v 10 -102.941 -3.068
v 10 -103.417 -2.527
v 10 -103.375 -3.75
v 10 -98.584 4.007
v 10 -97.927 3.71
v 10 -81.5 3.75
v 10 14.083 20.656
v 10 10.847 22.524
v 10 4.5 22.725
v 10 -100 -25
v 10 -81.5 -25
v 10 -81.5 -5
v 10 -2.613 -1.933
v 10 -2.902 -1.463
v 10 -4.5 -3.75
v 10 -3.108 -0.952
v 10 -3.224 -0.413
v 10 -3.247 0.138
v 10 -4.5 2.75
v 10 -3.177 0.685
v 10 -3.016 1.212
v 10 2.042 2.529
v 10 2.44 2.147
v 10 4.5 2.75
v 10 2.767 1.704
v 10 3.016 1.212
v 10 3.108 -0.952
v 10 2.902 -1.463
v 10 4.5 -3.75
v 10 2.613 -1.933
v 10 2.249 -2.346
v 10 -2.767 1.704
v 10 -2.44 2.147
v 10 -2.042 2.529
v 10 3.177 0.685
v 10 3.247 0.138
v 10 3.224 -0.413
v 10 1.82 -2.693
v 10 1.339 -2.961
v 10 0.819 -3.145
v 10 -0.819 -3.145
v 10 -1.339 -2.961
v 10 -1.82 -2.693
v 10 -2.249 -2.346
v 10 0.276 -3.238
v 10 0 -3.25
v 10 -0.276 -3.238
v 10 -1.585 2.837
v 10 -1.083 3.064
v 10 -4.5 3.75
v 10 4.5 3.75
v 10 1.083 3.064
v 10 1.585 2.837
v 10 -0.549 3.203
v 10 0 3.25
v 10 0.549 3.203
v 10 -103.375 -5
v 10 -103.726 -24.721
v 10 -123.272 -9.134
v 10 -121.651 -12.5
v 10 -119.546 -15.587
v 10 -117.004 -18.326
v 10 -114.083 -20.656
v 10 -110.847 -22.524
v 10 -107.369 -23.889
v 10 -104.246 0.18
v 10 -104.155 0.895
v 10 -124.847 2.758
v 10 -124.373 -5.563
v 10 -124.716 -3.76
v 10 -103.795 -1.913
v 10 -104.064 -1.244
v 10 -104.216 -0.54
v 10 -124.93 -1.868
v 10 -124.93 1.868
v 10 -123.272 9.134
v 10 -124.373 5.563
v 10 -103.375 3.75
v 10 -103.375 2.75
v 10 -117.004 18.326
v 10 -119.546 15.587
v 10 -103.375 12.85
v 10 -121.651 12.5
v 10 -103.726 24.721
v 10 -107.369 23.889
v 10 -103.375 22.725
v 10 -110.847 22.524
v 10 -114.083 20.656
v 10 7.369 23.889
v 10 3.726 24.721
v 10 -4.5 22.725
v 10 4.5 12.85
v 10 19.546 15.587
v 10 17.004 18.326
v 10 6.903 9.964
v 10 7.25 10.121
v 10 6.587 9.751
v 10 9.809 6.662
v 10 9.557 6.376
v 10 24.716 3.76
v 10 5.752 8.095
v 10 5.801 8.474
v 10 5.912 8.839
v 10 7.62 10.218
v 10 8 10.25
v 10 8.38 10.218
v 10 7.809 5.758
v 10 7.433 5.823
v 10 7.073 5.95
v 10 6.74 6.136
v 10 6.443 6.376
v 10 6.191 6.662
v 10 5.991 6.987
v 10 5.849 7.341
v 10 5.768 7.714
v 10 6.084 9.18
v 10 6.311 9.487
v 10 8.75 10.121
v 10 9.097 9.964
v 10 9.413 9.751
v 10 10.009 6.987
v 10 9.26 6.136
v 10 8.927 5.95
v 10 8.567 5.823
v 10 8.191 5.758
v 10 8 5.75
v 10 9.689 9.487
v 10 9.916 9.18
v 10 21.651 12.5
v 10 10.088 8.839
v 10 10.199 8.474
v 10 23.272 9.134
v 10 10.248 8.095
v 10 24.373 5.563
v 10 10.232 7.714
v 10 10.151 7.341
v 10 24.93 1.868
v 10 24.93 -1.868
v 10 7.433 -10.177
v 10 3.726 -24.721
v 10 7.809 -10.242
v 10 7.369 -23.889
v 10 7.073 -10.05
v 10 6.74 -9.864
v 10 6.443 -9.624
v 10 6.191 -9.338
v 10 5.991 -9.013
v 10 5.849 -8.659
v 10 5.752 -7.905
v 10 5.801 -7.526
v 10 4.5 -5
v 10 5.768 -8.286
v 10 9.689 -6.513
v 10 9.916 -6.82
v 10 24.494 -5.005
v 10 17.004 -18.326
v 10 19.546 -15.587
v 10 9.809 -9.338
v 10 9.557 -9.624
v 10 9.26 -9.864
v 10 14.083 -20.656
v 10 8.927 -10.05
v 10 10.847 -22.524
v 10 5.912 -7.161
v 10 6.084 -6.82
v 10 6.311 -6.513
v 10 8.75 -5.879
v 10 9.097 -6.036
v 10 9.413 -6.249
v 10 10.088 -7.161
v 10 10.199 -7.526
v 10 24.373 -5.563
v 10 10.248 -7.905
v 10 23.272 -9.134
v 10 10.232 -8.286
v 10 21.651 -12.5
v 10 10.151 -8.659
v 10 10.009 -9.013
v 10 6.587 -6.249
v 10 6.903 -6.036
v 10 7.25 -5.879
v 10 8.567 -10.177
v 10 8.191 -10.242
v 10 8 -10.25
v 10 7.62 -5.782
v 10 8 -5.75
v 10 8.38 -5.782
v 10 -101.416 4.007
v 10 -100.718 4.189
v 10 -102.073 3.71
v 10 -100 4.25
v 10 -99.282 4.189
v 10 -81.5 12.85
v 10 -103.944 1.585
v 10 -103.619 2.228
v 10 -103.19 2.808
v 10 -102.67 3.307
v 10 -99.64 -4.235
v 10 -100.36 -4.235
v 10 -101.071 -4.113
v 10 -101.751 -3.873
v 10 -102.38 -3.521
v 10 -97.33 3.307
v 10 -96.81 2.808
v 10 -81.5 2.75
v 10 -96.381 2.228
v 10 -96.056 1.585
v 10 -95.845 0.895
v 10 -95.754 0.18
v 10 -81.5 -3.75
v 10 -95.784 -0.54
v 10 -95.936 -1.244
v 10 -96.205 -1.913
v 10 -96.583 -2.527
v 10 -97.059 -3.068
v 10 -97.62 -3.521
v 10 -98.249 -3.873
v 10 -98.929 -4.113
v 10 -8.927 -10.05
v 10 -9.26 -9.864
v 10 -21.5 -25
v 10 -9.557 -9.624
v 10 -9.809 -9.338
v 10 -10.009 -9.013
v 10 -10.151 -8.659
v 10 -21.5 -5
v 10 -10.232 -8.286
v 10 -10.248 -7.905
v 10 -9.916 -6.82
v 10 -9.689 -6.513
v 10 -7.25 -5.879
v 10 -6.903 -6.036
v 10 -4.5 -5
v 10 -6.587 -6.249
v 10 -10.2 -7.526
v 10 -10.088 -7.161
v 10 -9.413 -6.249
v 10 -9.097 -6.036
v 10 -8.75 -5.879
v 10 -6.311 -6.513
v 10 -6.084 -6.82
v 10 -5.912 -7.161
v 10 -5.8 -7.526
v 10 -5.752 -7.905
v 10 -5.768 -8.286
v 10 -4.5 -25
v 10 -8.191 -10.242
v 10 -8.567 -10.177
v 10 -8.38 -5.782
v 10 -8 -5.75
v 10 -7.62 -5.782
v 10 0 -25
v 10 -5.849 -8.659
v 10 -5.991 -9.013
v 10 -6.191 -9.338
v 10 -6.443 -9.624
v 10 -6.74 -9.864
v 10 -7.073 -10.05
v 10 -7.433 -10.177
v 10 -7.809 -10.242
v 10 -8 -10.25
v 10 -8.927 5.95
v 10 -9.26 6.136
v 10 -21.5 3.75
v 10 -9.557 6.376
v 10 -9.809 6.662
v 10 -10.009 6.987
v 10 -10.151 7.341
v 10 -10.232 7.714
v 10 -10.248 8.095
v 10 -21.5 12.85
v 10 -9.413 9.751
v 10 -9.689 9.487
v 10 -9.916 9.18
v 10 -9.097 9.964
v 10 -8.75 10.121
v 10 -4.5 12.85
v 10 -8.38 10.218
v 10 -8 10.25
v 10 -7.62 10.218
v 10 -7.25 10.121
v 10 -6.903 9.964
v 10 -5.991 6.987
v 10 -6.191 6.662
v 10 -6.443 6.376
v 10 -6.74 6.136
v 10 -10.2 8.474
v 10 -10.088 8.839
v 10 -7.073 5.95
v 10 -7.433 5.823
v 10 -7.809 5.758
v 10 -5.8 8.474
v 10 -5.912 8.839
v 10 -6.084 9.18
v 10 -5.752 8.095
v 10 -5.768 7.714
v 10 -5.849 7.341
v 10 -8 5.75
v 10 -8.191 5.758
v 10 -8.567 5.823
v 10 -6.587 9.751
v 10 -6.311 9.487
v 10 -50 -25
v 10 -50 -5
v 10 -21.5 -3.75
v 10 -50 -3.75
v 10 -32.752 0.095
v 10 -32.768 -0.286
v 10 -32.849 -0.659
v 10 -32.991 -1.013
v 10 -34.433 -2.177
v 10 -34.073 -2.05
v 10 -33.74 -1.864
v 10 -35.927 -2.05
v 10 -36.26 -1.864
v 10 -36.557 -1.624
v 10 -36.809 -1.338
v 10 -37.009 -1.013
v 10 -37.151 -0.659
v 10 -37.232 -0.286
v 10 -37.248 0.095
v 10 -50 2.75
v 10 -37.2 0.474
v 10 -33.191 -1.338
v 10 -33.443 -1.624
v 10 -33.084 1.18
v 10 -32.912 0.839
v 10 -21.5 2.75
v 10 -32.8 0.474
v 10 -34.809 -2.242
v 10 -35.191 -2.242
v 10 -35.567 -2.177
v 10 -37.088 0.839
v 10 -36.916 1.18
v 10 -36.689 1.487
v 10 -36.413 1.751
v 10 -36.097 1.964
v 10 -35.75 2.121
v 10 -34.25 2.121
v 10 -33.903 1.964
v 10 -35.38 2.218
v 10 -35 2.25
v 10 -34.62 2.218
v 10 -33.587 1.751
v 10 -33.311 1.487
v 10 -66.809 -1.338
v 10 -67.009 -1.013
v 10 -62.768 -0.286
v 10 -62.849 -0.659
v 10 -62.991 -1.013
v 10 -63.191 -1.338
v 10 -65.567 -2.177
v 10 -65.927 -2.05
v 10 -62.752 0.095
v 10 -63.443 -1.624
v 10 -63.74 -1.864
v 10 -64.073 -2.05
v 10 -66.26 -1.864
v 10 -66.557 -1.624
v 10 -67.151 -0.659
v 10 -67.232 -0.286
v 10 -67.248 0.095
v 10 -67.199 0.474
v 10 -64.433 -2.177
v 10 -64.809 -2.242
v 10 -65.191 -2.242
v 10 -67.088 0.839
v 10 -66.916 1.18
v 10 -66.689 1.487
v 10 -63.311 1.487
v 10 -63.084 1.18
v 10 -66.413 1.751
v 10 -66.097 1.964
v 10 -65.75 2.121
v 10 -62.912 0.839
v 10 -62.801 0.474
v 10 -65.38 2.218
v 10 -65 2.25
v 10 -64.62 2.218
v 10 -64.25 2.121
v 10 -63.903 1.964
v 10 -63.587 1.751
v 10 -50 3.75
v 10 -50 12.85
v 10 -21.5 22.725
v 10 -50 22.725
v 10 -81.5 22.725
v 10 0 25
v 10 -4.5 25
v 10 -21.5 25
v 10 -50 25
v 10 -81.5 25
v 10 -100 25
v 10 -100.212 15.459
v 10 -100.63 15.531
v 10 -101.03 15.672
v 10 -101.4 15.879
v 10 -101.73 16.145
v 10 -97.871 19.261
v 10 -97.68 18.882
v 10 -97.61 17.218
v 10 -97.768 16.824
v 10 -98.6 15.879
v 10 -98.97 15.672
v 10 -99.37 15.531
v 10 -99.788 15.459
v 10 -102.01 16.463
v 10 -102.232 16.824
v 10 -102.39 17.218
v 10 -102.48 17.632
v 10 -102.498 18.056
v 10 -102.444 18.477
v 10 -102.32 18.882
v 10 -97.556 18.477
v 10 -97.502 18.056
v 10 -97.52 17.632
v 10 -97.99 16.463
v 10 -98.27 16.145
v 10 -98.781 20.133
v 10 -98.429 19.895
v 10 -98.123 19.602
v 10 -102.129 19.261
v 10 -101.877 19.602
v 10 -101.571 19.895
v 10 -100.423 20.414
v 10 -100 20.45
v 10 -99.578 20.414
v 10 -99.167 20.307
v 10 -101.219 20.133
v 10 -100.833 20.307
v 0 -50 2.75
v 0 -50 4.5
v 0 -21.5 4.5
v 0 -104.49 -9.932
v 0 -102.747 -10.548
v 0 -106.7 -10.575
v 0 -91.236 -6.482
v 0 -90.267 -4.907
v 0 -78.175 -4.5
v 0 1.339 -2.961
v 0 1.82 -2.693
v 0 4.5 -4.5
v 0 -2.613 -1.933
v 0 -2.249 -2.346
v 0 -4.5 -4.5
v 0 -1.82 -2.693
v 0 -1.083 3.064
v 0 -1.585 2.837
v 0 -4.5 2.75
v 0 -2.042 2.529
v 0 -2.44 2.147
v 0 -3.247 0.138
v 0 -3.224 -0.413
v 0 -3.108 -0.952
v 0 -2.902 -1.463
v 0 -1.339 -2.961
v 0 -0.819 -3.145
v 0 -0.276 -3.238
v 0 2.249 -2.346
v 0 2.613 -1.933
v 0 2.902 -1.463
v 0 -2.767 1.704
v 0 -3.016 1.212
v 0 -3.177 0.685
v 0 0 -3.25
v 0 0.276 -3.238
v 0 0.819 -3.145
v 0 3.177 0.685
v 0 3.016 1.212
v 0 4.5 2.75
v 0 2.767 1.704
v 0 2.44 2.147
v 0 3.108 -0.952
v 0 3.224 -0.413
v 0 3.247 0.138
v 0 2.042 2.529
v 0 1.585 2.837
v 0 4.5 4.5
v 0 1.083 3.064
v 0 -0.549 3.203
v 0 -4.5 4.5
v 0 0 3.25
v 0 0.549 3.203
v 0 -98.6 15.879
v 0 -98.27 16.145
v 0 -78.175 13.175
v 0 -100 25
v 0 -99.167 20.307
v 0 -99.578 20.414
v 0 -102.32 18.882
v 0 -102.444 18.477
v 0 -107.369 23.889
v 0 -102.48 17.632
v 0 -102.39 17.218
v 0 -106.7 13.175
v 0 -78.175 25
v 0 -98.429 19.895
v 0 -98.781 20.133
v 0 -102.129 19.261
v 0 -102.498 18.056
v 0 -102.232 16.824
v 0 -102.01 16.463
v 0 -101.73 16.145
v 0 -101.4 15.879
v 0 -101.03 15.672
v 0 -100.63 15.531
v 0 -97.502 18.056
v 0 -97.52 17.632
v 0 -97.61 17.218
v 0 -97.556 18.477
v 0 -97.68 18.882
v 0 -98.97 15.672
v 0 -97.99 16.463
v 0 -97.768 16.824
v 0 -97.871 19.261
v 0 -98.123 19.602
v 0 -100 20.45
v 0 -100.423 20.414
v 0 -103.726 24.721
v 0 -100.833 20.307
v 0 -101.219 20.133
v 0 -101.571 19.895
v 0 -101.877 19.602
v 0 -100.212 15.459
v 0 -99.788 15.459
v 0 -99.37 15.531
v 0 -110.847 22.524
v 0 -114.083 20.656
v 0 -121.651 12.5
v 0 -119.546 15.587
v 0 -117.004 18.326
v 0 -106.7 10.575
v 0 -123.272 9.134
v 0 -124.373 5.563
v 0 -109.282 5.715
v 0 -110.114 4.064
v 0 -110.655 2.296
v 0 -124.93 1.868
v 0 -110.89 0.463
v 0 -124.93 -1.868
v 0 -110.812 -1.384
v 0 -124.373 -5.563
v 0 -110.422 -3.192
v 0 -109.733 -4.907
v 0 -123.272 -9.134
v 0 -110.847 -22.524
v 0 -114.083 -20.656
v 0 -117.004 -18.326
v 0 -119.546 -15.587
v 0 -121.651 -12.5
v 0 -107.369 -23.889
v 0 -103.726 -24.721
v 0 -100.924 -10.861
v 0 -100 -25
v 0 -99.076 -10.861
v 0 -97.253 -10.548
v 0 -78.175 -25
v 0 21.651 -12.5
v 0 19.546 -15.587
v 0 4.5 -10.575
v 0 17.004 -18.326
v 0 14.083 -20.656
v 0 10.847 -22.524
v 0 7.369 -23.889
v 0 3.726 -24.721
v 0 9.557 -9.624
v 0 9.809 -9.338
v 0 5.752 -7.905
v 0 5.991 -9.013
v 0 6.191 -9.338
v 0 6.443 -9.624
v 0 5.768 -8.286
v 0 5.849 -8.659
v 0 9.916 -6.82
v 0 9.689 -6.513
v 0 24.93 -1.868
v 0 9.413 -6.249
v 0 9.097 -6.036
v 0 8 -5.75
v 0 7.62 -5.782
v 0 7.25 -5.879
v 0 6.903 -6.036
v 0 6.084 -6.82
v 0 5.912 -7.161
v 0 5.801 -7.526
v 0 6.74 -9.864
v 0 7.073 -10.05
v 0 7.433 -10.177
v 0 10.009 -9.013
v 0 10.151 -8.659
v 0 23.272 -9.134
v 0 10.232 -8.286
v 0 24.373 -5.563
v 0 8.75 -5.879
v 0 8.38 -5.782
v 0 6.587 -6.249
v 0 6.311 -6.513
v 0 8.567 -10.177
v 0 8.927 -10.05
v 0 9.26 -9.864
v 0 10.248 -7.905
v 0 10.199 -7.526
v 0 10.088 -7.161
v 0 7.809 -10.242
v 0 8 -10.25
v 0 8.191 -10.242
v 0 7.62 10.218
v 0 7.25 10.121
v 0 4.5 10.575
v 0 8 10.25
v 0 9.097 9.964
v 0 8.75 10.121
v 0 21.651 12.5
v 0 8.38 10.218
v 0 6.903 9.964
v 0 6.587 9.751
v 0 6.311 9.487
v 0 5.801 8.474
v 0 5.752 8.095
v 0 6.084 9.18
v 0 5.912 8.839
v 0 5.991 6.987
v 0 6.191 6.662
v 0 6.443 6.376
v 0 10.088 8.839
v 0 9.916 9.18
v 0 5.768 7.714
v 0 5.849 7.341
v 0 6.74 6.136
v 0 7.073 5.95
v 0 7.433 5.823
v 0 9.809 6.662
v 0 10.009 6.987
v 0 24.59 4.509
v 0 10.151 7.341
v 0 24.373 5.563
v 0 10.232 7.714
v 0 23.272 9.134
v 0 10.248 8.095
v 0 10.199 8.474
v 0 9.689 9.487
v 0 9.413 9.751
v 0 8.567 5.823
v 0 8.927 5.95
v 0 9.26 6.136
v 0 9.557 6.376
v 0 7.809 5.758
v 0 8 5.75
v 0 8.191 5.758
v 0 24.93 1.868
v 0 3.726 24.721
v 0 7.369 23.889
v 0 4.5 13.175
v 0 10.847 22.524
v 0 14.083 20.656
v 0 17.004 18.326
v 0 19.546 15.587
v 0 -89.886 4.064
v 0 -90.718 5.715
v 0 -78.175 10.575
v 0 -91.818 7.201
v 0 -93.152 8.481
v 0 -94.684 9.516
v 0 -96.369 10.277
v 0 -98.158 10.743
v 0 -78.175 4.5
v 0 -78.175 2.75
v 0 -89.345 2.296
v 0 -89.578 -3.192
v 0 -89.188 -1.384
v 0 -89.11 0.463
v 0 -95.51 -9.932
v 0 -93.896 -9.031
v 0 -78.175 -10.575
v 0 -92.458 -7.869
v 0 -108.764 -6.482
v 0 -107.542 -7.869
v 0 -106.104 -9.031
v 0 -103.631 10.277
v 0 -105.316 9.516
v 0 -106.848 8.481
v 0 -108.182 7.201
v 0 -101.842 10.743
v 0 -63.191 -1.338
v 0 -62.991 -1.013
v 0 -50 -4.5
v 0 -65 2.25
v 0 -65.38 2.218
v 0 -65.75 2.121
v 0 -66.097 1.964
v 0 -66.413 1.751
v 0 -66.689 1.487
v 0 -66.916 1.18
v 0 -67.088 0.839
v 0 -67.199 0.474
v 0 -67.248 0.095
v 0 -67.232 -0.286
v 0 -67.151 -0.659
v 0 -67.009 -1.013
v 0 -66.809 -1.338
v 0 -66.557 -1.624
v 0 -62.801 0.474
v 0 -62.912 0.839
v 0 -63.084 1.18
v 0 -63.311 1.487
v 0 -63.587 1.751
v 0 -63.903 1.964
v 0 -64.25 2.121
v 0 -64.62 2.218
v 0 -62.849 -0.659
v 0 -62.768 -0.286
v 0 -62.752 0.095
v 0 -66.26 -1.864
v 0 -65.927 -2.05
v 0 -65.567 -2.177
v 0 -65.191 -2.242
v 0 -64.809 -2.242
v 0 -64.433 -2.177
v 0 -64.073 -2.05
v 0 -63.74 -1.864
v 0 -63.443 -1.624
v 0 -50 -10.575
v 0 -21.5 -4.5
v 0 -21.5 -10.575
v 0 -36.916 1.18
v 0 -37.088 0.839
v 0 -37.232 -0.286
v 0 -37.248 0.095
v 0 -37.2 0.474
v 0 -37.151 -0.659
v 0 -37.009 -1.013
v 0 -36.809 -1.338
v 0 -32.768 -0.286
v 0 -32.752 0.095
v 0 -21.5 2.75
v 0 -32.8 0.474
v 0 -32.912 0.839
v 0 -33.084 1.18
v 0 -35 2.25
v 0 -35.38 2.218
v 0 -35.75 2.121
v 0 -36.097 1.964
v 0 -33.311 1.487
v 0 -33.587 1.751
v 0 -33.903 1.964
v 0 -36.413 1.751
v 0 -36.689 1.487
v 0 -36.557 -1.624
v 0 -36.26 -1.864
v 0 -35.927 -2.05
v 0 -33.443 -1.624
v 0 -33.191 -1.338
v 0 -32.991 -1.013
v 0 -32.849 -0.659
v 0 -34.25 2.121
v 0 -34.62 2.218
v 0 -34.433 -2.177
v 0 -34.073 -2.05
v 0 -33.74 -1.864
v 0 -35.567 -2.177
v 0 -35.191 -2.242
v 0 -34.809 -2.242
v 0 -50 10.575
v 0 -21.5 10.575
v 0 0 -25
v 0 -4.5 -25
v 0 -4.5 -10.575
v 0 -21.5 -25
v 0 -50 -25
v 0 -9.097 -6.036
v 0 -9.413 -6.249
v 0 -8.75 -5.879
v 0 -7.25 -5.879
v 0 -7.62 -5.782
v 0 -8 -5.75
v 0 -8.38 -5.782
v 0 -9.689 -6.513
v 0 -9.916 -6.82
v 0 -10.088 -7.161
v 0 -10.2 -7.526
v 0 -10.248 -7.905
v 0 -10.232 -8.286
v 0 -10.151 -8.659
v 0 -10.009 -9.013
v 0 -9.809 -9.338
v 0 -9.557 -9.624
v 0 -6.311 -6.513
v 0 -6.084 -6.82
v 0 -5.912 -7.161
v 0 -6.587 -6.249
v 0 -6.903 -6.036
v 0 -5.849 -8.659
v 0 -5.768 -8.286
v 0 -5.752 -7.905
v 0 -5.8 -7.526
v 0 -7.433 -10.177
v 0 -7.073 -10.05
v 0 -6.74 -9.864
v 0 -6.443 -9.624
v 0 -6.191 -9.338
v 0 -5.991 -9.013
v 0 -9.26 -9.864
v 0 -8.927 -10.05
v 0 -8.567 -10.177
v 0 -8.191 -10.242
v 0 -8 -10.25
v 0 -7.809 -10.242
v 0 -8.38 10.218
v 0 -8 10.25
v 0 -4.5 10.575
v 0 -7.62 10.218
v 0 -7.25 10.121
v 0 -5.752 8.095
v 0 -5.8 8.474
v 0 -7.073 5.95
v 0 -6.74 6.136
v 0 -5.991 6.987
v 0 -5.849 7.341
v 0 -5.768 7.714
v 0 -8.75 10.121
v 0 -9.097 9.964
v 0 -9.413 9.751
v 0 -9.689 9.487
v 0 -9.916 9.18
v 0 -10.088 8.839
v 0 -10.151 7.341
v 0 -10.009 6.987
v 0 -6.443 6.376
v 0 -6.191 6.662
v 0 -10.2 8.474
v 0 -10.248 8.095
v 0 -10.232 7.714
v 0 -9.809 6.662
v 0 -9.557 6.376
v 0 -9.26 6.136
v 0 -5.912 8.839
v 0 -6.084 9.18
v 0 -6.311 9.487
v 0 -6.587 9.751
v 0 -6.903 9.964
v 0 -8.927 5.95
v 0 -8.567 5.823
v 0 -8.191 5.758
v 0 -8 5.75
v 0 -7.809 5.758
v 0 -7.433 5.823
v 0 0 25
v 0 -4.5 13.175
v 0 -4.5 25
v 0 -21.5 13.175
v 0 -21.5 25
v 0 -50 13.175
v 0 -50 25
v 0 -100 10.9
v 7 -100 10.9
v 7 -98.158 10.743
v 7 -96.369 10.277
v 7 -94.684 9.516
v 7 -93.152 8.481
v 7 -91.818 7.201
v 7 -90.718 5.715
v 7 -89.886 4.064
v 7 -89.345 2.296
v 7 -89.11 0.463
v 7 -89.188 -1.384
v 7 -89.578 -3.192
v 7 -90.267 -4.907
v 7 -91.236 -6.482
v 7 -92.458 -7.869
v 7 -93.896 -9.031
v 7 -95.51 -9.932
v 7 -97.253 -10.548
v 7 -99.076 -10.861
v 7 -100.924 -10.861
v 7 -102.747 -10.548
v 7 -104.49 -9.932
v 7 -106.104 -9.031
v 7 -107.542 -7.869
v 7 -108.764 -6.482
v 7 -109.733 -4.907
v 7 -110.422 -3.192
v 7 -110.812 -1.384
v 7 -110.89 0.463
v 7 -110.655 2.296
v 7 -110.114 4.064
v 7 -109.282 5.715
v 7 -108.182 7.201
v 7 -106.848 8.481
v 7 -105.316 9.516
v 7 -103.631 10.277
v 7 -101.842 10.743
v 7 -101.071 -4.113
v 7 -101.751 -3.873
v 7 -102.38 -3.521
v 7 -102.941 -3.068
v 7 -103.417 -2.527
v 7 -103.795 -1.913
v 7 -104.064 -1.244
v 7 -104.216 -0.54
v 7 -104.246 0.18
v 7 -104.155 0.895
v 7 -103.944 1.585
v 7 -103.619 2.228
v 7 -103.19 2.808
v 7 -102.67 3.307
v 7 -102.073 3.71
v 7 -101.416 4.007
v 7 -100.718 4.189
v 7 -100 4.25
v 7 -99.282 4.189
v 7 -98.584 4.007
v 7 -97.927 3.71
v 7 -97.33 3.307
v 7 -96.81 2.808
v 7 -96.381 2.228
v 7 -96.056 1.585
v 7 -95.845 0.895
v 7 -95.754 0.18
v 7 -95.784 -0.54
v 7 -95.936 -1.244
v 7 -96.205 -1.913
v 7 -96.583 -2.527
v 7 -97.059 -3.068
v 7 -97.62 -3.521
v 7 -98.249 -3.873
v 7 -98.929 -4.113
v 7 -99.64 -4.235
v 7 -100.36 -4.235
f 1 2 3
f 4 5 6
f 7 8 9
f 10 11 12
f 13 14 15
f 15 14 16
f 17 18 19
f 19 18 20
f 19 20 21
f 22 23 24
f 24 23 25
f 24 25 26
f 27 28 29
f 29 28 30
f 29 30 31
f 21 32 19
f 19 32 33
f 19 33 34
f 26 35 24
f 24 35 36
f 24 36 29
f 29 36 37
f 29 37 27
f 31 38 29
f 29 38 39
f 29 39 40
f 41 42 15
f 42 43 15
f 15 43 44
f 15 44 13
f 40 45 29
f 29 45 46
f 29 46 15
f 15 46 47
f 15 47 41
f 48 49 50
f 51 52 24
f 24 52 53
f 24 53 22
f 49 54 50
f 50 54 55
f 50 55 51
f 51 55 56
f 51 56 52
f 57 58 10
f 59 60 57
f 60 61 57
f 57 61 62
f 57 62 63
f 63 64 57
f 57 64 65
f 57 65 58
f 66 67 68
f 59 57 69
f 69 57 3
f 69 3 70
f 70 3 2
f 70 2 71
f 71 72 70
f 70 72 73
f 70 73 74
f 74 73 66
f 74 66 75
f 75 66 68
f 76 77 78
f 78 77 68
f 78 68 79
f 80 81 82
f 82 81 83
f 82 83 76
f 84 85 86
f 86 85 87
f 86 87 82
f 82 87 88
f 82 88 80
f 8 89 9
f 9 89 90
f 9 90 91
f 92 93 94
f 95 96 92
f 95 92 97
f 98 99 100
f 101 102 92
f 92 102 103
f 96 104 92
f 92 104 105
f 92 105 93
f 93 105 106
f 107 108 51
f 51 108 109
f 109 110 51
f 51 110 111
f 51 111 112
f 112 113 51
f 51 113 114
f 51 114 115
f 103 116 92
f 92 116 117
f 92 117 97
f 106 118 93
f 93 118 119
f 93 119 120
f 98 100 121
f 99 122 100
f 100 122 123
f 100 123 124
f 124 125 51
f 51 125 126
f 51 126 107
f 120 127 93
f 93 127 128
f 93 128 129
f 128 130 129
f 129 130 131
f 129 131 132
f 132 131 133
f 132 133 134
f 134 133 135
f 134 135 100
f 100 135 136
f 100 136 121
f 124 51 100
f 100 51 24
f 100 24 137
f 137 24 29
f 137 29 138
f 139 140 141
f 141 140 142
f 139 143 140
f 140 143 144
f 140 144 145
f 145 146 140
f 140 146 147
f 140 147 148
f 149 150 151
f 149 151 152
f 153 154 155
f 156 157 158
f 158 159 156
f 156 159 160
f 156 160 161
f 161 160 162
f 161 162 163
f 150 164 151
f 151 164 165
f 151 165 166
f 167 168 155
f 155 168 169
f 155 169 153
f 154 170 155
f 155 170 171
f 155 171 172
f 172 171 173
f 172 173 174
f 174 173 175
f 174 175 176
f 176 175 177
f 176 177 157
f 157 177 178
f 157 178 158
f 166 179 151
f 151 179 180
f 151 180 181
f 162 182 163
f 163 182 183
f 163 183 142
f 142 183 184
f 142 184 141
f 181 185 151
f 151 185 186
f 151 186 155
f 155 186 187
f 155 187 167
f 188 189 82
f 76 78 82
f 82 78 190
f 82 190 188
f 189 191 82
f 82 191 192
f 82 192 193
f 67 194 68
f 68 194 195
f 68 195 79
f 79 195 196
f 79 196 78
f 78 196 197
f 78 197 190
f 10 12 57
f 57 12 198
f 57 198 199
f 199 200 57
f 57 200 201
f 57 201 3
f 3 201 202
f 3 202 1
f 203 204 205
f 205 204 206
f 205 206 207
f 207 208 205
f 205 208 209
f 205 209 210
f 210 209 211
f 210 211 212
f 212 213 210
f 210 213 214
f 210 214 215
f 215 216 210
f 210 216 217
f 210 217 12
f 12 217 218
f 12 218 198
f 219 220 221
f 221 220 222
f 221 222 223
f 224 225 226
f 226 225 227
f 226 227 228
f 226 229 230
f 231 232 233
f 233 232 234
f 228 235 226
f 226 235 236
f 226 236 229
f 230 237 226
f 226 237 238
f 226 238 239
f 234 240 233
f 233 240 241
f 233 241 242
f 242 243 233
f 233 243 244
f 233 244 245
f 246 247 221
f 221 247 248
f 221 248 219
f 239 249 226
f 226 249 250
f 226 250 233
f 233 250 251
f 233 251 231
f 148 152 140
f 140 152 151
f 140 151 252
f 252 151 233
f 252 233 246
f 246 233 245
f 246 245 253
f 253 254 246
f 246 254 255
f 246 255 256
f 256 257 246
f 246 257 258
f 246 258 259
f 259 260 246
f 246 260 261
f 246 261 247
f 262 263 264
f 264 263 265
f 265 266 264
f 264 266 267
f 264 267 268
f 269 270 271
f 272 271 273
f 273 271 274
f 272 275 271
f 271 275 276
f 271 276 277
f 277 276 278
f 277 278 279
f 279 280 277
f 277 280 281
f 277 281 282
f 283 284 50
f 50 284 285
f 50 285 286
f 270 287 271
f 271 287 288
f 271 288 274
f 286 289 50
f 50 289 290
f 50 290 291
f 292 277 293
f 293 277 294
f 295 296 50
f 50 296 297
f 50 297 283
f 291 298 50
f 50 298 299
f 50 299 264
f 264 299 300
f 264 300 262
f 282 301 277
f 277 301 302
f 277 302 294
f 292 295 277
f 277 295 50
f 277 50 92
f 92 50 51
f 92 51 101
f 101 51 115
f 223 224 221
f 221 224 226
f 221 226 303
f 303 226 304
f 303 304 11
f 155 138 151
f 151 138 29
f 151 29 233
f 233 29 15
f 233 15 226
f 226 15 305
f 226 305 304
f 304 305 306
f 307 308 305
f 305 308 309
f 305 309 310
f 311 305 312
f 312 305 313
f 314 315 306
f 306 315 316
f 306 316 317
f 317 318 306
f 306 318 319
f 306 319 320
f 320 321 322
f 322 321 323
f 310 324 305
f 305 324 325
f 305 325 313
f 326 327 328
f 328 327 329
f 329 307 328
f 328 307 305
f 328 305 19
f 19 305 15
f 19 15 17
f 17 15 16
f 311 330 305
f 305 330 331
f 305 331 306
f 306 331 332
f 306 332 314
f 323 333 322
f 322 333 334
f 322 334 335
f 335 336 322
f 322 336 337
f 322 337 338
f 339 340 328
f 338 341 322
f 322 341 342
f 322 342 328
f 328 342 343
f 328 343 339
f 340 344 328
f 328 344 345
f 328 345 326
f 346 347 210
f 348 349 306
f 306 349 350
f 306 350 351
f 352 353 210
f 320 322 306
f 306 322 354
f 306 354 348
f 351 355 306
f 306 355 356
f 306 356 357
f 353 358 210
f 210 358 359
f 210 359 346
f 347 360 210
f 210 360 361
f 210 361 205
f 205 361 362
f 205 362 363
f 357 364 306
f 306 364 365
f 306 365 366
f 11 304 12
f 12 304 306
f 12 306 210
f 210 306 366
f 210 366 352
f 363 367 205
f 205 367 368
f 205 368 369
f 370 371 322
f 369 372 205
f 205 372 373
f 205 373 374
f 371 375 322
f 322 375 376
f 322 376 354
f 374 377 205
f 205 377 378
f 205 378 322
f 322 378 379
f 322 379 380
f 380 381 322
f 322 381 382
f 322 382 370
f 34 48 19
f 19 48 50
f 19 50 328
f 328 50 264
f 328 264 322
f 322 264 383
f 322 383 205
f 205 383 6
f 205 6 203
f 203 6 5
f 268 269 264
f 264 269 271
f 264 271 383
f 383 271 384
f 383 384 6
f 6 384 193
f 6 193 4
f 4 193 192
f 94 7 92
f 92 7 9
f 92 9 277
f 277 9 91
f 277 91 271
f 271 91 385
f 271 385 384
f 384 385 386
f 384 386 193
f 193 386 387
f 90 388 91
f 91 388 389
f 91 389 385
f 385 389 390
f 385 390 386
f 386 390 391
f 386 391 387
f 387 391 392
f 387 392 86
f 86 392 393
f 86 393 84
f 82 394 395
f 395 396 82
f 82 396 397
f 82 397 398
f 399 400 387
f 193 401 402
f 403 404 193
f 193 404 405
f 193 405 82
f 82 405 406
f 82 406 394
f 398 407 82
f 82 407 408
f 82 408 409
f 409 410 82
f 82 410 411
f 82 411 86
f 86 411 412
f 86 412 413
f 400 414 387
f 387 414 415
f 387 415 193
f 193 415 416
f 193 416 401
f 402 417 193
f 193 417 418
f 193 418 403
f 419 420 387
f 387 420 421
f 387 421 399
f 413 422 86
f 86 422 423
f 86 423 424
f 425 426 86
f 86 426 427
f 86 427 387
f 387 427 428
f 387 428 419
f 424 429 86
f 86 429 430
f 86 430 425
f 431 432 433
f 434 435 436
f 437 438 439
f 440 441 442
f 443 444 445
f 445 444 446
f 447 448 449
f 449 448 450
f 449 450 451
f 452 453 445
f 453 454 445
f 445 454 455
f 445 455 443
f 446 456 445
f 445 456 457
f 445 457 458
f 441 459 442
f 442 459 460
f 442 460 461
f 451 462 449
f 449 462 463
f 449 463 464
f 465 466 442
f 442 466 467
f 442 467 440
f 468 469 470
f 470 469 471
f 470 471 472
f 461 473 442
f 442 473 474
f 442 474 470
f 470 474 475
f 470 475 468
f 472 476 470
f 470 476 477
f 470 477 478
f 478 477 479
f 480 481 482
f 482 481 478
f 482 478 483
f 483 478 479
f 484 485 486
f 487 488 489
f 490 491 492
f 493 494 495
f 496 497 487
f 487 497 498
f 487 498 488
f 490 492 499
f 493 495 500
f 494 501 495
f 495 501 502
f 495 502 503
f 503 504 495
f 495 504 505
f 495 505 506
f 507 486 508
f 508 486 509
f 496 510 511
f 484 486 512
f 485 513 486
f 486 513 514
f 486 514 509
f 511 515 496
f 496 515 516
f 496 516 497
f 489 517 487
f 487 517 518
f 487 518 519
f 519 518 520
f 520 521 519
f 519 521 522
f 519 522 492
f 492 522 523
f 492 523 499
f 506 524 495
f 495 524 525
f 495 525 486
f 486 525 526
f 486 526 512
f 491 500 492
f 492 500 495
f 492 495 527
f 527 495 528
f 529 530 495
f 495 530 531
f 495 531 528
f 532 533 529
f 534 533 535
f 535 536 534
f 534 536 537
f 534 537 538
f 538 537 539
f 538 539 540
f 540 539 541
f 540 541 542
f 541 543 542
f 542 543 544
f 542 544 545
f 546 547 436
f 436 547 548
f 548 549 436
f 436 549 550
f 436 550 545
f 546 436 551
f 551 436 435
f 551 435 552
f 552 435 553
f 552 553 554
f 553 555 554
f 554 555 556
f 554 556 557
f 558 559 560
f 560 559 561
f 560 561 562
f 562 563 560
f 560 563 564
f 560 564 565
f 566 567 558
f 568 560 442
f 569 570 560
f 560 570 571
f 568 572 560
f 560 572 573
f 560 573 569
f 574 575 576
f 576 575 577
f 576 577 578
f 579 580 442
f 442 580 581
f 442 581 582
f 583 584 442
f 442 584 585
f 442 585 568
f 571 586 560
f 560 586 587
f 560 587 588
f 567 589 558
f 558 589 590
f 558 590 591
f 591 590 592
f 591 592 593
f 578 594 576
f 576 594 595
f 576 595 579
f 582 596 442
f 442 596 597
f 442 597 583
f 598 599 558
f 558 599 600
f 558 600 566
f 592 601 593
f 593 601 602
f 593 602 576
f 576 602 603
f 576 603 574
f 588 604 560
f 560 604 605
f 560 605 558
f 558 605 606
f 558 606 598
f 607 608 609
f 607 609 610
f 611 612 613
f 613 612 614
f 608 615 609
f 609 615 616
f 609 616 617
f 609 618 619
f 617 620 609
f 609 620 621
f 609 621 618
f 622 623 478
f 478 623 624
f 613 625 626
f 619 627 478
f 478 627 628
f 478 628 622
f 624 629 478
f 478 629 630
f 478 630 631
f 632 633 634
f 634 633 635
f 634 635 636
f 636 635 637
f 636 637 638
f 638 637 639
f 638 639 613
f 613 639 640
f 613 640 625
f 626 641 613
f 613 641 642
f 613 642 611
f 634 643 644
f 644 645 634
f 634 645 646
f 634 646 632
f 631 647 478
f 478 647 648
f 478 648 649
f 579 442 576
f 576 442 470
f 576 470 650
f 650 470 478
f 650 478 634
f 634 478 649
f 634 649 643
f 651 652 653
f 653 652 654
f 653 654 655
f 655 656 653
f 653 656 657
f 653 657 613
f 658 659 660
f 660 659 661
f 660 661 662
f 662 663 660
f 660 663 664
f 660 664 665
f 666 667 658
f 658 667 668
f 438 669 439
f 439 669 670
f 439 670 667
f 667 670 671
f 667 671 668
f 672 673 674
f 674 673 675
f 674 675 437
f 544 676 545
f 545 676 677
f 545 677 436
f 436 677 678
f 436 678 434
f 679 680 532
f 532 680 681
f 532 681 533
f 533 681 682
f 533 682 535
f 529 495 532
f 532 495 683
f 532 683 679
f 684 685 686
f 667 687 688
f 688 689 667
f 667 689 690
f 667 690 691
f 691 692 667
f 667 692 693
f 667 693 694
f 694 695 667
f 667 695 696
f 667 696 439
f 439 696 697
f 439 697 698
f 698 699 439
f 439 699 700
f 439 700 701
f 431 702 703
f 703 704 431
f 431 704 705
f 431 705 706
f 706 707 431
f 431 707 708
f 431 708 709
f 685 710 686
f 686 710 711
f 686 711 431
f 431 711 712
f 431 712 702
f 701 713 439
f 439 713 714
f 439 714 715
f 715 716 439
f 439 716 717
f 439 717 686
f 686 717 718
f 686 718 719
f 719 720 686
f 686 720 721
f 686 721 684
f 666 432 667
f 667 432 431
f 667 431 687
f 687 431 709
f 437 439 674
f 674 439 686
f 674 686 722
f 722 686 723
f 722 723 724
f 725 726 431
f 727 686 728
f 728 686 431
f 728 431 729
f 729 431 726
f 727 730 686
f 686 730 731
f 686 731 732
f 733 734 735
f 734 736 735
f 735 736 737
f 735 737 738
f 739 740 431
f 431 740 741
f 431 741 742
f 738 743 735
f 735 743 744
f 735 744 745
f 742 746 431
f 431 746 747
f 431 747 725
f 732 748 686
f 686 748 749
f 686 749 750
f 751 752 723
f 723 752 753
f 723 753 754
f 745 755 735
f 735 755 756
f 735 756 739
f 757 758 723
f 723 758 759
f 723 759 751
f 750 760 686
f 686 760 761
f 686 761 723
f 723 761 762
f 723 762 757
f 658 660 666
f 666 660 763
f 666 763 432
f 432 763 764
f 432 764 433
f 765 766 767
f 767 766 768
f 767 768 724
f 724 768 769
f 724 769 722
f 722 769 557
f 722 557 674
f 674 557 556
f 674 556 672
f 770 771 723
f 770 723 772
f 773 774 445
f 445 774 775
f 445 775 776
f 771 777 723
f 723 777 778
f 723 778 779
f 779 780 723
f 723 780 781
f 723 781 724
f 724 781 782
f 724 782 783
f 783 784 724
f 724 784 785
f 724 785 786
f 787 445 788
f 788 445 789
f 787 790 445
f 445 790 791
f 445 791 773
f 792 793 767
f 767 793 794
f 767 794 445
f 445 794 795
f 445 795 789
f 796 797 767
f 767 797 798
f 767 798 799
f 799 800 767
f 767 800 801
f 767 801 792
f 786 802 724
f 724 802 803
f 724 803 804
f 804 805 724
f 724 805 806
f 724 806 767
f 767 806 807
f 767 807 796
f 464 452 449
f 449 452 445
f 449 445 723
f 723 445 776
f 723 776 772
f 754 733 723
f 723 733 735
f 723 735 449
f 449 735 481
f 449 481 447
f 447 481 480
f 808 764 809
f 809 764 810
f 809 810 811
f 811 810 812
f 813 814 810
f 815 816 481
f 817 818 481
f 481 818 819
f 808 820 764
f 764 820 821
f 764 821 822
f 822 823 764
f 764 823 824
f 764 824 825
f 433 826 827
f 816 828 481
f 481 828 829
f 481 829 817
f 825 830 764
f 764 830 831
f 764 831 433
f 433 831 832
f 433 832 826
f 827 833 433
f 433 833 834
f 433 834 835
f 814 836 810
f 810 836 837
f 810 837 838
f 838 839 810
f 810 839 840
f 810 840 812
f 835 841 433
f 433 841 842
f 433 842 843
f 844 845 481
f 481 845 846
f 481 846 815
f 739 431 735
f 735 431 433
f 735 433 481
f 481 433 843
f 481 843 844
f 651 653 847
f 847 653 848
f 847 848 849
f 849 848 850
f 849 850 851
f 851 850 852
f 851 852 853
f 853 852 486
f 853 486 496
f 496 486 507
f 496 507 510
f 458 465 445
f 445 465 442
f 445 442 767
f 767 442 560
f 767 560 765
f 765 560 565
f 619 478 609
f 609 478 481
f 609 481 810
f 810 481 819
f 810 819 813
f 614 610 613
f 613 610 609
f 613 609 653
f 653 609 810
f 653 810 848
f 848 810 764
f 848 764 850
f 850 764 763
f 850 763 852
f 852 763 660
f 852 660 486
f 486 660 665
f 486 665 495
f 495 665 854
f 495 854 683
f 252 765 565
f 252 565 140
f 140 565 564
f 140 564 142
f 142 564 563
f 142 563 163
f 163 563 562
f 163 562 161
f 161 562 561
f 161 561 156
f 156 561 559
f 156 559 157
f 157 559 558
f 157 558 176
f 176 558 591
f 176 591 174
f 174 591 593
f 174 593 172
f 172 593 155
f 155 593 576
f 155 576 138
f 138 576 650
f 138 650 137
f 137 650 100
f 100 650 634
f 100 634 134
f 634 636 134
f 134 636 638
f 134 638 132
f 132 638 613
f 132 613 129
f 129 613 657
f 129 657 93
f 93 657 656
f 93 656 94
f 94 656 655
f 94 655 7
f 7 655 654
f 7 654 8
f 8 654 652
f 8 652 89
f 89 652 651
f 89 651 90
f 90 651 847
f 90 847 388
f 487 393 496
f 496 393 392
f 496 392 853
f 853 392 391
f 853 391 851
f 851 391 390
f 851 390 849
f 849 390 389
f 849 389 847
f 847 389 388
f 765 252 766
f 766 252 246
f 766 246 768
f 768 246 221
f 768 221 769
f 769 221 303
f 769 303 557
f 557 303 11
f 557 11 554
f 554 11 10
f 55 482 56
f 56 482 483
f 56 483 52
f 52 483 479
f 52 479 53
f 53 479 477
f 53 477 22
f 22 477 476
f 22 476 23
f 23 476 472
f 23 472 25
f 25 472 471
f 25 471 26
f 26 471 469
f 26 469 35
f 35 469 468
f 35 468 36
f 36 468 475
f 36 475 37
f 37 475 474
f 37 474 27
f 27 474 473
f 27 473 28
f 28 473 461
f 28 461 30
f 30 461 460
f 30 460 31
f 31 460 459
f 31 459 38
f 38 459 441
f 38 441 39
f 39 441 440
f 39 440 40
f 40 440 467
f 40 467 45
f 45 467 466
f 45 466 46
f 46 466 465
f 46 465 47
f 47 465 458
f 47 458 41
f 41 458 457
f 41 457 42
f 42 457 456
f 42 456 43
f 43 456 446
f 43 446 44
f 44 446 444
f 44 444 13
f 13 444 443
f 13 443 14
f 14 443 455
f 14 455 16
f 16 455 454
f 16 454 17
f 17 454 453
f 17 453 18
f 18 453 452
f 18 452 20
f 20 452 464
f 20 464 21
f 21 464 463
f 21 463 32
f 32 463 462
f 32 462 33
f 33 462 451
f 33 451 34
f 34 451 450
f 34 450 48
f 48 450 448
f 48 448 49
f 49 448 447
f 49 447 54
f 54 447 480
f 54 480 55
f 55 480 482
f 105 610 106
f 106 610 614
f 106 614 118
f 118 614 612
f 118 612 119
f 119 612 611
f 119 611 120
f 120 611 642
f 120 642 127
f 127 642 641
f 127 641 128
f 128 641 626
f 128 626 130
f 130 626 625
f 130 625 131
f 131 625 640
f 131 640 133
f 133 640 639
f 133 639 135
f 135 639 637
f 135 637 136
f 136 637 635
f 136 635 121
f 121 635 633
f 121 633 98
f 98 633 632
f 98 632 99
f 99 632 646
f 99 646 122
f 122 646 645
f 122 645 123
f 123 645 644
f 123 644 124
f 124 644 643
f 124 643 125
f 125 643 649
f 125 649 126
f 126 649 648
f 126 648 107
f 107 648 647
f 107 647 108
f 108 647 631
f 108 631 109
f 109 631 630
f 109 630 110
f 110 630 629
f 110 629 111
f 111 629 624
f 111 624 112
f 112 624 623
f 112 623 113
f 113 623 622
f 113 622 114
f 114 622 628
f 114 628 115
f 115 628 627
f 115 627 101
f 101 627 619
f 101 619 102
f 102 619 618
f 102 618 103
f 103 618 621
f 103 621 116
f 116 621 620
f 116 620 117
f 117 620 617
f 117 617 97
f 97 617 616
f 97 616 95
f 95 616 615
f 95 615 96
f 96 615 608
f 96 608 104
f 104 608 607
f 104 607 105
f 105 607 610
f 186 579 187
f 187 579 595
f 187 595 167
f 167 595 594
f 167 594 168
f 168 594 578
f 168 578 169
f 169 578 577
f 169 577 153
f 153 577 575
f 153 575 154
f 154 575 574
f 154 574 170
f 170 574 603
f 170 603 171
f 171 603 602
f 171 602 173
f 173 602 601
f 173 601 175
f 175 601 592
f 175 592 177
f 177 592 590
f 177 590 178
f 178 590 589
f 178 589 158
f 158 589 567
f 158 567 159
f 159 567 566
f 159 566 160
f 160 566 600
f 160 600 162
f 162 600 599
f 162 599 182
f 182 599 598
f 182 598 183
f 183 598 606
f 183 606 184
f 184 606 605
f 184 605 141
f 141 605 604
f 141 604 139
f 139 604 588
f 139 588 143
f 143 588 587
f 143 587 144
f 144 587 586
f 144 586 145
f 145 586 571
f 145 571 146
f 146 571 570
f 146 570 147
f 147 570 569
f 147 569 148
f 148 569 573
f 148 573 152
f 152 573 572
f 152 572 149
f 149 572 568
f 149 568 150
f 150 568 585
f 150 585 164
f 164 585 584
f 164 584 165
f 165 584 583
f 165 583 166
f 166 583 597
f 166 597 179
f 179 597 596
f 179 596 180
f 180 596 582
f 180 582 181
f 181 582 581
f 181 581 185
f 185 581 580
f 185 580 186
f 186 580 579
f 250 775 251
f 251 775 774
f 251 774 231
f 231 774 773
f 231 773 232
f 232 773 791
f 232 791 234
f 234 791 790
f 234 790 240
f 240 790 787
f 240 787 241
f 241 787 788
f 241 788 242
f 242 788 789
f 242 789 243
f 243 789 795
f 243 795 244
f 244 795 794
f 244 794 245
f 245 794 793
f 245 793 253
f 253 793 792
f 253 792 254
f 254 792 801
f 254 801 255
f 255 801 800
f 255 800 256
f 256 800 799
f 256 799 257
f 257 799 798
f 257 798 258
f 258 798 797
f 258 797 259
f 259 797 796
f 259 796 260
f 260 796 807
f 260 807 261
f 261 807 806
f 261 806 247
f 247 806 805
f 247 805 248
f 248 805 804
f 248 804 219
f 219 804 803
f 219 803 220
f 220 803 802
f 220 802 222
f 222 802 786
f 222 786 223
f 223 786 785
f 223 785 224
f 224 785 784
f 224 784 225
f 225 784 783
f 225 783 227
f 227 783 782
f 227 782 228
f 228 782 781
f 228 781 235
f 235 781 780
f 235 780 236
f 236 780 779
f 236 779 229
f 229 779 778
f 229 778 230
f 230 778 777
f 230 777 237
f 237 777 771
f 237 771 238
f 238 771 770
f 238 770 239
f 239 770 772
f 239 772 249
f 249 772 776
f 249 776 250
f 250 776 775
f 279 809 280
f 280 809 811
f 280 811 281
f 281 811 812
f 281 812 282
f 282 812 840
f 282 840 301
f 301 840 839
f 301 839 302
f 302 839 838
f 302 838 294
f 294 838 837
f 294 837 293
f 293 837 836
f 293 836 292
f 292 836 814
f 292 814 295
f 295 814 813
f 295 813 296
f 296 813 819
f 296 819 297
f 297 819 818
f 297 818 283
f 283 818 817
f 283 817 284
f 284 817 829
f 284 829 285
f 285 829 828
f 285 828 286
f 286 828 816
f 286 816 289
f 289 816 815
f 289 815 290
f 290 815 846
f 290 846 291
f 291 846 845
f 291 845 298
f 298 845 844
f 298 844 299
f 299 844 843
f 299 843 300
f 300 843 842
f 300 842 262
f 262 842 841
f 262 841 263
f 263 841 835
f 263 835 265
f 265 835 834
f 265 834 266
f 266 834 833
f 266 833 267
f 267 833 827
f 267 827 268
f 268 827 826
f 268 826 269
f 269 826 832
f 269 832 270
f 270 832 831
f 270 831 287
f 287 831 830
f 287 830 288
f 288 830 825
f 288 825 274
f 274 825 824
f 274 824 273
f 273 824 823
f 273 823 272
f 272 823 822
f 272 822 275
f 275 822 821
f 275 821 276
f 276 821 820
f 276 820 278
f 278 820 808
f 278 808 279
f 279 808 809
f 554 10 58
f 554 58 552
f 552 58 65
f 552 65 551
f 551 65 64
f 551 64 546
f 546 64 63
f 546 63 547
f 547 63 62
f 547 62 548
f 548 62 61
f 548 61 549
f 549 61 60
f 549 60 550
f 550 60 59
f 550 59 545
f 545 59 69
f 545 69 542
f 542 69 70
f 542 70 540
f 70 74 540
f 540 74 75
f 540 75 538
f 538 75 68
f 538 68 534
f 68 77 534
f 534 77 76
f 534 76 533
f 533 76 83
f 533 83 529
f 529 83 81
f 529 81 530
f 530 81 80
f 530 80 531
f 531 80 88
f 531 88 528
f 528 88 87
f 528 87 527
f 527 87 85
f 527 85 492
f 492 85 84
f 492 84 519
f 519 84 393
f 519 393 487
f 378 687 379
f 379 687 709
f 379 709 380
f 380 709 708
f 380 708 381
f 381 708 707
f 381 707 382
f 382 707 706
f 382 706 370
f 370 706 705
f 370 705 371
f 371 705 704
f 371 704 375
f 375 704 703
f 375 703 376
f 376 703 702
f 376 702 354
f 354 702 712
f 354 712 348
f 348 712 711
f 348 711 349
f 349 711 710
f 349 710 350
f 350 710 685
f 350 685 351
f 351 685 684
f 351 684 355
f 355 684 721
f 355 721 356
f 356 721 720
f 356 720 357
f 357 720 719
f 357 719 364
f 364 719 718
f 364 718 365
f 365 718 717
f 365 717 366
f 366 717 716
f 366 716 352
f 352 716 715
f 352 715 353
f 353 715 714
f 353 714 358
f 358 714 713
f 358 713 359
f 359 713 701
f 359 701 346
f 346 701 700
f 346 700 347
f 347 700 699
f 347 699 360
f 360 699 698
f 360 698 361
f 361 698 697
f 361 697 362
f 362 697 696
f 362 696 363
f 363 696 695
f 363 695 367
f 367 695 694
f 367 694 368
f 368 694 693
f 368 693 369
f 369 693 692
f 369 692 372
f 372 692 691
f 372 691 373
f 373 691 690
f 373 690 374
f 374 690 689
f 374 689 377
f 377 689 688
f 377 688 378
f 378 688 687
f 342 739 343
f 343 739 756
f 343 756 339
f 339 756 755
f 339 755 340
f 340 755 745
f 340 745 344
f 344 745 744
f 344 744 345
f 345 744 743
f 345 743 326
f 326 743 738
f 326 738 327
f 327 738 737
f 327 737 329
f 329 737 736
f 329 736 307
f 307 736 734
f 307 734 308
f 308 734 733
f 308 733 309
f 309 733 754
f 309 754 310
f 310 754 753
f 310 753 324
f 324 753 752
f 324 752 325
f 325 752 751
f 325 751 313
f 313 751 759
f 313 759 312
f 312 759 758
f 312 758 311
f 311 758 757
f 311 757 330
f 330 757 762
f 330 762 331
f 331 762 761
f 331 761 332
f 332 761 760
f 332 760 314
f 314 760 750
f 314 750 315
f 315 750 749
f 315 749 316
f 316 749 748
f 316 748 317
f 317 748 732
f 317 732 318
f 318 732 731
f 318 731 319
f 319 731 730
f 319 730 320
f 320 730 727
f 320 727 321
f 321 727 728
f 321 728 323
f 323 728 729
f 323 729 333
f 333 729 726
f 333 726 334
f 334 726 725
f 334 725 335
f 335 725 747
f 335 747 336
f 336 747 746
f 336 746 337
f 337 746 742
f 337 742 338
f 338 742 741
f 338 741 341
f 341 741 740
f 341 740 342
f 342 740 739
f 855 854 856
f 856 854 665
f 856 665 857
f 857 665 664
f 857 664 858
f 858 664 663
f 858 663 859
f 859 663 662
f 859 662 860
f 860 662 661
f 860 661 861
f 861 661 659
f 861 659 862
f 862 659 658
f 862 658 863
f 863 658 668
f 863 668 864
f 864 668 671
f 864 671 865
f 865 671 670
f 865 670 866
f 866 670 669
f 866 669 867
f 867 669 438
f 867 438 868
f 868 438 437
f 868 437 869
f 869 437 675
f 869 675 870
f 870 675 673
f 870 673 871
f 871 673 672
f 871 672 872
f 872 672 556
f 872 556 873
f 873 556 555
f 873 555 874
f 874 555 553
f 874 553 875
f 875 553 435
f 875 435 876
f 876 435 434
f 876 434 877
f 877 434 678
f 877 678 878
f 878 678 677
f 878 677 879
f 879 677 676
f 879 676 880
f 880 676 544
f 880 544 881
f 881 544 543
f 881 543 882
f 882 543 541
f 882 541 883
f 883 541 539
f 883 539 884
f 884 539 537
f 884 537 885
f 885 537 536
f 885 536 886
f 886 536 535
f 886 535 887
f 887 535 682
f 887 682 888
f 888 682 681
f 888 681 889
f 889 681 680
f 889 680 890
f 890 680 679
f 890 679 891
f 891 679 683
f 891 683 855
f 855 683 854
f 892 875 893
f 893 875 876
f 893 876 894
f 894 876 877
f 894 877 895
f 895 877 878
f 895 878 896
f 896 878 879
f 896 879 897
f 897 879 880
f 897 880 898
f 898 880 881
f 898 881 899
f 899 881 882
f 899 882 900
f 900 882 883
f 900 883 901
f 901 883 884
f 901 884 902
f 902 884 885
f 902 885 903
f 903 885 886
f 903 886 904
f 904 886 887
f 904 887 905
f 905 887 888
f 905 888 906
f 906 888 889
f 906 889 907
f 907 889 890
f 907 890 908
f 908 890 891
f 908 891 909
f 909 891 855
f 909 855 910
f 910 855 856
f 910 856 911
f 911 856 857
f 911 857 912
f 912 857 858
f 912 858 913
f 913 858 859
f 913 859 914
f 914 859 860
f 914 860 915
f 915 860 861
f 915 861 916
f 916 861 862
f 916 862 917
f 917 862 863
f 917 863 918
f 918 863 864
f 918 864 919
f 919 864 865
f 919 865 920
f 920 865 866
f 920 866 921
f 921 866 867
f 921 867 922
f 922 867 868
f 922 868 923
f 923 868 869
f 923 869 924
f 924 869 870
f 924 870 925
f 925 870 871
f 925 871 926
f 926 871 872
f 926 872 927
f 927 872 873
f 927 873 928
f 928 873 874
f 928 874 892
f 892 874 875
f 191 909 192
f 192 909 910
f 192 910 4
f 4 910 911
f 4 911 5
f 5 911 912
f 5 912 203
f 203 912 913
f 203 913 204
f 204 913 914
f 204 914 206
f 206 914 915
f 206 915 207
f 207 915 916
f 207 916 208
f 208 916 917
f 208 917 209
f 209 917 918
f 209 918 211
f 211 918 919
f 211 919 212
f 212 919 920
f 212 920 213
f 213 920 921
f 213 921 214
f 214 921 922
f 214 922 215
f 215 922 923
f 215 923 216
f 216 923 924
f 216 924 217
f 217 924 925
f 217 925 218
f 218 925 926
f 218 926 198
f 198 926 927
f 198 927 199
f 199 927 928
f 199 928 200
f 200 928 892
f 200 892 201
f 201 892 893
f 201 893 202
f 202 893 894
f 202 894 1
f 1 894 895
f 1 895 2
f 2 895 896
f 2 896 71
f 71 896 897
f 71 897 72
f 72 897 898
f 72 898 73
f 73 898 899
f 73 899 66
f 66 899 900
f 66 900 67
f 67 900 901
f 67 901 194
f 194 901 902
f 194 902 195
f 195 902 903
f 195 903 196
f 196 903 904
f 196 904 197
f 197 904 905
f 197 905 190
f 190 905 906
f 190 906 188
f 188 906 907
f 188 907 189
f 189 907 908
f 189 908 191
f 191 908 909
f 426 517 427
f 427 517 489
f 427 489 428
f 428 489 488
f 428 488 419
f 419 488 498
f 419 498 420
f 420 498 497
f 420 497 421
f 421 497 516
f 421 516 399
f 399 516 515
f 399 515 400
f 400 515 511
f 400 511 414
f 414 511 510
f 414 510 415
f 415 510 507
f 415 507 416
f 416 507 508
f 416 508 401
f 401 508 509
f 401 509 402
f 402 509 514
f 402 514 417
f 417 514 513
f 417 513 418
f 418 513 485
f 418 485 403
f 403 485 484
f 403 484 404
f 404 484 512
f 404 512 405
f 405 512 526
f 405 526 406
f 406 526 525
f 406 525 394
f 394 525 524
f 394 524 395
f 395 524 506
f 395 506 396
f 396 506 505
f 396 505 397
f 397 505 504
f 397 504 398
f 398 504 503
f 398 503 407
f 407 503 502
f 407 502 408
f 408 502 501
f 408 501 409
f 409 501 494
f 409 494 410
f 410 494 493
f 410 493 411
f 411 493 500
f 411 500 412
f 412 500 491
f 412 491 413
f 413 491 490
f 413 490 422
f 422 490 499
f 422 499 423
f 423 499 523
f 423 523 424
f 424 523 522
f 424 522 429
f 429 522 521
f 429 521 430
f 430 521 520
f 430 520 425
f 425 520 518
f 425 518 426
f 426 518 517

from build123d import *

# Parameters (mm, degrees)
CROQUIS1_R              = 3.25
CROQUIS1_R_2            = 2.25
SALIENTE_EXTRUIR1_DEPTH = 10
SALIENTE_EXTRUIR2_DEPTH = 10
CROQUIS3_R              = 2.25
CORTAR_EXTRUIR1_DEPTH   = 128.867118525
CROQUIS4_R              = 10.9
CORTAR_EXTRUIR2_DEPTH   = 7
CROQUIS5_R              = 4.25
CORTAR_EXTRUIR3_DEPTH   = 128.667536986
CROQUIS6_R              = 2.5
CORTAR_EXTRUIR4_DEPTH   = 128.867118525


with BuildPart() as part:
    # Croquis1 → Saliente-Extruir1 (new body)
    with BuildSketch(Plane(origin=(0, 0, 0), x_dir=(0, 0, -1), z_dir=(1, 0, 0))):
        with BuildLine():
            Line((-25, 0), (-25, -85))
            Line((-25, -85), (25, -85))
            Line((25, -85), (25, 0))
            ThreePointArc((25, 0), (0, 25), (-25, 0))
        make_face()
        Circle(CROQUIS1_R, mode=Mode.SUBTRACT)
        with Locations((-8, 8)):
            Circle(CROQUIS1_R_2, mode=Mode.SUBTRACT)
        with Locations((8, 8)):
            Circle(CROQUIS1_R_2, mode=Mode.SUBTRACT)
        with Locations((8, -8)):
            Circle(CROQUIS1_R_2, mode=Mode.SUBTRACT)
        with Locations((-8, -8)):
            Circle(CROQUIS1_R_2, mode=Mode.SUBTRACT)
    extrude(amount=SALIENTE_EXTRUIR1_DEPTH)

    # Croquis2 → Saliente-Extruir2 (add)
    with BuildSketch(Plane(origin=(10, 0, 0), x_dir=(0, 0, -1), z_dir=(1, 0, 0))):
        with BuildLine():
            Line((-25, -100), (-25, -85))
            Line((-25, -85), (25, -85))
            Line((25, -85), (25, -100))
            ThreePointArc((25, -100), (0, -125), (-25, -100))
        make_face()
    extrude(amount=-SALIENTE_EXTRUIR2_DEPTH)

    # Croquis3 → Cortar-Extruir1 (cut, through all)
    with BuildSketch(Plane.ZY):
        with Locations((0, -35)):
            Circle(CROQUIS3_R)
        with Locations((0, -65)):
            Circle(CROQUIS3_R)
    extrude(amount=-CORTAR_EXTRUIR1_DEPTH, mode=Mode.SUBTRACT)

    # Croquis4 → Cortar-Extruir2 (cut)
    with BuildSketch(Plane.ZY):
        with Locations((0, -100)):
            Circle(CROQUIS4_R)
    extrude(amount=-CORTAR_EXTRUIR2_DEPTH, mode=Mode.SUBTRACT)

    # Croquis5 → Cortar-Extruir3 (cut, through all)
    with BuildSketch(Plane.ZY.offset(-7)):
        with Locations((0, -100)):
            Circle(CROQUIS5_R)
    extrude(amount=-CORTAR_EXTRUIR3_DEPTH, mode=Mode.SUBTRACT)

    # Croquis6 → Cortar-Extruir4 (cut, through all)
    with BuildSketch(Plane.ZY):
        with Locations((17.95, -100)):
            Circle(CROQUIS6_R)
    extrude(amount=-CORTAR_EXTRUIR4_DEPTH, mode=Mode.SUBTRACT)


solid = part.part
